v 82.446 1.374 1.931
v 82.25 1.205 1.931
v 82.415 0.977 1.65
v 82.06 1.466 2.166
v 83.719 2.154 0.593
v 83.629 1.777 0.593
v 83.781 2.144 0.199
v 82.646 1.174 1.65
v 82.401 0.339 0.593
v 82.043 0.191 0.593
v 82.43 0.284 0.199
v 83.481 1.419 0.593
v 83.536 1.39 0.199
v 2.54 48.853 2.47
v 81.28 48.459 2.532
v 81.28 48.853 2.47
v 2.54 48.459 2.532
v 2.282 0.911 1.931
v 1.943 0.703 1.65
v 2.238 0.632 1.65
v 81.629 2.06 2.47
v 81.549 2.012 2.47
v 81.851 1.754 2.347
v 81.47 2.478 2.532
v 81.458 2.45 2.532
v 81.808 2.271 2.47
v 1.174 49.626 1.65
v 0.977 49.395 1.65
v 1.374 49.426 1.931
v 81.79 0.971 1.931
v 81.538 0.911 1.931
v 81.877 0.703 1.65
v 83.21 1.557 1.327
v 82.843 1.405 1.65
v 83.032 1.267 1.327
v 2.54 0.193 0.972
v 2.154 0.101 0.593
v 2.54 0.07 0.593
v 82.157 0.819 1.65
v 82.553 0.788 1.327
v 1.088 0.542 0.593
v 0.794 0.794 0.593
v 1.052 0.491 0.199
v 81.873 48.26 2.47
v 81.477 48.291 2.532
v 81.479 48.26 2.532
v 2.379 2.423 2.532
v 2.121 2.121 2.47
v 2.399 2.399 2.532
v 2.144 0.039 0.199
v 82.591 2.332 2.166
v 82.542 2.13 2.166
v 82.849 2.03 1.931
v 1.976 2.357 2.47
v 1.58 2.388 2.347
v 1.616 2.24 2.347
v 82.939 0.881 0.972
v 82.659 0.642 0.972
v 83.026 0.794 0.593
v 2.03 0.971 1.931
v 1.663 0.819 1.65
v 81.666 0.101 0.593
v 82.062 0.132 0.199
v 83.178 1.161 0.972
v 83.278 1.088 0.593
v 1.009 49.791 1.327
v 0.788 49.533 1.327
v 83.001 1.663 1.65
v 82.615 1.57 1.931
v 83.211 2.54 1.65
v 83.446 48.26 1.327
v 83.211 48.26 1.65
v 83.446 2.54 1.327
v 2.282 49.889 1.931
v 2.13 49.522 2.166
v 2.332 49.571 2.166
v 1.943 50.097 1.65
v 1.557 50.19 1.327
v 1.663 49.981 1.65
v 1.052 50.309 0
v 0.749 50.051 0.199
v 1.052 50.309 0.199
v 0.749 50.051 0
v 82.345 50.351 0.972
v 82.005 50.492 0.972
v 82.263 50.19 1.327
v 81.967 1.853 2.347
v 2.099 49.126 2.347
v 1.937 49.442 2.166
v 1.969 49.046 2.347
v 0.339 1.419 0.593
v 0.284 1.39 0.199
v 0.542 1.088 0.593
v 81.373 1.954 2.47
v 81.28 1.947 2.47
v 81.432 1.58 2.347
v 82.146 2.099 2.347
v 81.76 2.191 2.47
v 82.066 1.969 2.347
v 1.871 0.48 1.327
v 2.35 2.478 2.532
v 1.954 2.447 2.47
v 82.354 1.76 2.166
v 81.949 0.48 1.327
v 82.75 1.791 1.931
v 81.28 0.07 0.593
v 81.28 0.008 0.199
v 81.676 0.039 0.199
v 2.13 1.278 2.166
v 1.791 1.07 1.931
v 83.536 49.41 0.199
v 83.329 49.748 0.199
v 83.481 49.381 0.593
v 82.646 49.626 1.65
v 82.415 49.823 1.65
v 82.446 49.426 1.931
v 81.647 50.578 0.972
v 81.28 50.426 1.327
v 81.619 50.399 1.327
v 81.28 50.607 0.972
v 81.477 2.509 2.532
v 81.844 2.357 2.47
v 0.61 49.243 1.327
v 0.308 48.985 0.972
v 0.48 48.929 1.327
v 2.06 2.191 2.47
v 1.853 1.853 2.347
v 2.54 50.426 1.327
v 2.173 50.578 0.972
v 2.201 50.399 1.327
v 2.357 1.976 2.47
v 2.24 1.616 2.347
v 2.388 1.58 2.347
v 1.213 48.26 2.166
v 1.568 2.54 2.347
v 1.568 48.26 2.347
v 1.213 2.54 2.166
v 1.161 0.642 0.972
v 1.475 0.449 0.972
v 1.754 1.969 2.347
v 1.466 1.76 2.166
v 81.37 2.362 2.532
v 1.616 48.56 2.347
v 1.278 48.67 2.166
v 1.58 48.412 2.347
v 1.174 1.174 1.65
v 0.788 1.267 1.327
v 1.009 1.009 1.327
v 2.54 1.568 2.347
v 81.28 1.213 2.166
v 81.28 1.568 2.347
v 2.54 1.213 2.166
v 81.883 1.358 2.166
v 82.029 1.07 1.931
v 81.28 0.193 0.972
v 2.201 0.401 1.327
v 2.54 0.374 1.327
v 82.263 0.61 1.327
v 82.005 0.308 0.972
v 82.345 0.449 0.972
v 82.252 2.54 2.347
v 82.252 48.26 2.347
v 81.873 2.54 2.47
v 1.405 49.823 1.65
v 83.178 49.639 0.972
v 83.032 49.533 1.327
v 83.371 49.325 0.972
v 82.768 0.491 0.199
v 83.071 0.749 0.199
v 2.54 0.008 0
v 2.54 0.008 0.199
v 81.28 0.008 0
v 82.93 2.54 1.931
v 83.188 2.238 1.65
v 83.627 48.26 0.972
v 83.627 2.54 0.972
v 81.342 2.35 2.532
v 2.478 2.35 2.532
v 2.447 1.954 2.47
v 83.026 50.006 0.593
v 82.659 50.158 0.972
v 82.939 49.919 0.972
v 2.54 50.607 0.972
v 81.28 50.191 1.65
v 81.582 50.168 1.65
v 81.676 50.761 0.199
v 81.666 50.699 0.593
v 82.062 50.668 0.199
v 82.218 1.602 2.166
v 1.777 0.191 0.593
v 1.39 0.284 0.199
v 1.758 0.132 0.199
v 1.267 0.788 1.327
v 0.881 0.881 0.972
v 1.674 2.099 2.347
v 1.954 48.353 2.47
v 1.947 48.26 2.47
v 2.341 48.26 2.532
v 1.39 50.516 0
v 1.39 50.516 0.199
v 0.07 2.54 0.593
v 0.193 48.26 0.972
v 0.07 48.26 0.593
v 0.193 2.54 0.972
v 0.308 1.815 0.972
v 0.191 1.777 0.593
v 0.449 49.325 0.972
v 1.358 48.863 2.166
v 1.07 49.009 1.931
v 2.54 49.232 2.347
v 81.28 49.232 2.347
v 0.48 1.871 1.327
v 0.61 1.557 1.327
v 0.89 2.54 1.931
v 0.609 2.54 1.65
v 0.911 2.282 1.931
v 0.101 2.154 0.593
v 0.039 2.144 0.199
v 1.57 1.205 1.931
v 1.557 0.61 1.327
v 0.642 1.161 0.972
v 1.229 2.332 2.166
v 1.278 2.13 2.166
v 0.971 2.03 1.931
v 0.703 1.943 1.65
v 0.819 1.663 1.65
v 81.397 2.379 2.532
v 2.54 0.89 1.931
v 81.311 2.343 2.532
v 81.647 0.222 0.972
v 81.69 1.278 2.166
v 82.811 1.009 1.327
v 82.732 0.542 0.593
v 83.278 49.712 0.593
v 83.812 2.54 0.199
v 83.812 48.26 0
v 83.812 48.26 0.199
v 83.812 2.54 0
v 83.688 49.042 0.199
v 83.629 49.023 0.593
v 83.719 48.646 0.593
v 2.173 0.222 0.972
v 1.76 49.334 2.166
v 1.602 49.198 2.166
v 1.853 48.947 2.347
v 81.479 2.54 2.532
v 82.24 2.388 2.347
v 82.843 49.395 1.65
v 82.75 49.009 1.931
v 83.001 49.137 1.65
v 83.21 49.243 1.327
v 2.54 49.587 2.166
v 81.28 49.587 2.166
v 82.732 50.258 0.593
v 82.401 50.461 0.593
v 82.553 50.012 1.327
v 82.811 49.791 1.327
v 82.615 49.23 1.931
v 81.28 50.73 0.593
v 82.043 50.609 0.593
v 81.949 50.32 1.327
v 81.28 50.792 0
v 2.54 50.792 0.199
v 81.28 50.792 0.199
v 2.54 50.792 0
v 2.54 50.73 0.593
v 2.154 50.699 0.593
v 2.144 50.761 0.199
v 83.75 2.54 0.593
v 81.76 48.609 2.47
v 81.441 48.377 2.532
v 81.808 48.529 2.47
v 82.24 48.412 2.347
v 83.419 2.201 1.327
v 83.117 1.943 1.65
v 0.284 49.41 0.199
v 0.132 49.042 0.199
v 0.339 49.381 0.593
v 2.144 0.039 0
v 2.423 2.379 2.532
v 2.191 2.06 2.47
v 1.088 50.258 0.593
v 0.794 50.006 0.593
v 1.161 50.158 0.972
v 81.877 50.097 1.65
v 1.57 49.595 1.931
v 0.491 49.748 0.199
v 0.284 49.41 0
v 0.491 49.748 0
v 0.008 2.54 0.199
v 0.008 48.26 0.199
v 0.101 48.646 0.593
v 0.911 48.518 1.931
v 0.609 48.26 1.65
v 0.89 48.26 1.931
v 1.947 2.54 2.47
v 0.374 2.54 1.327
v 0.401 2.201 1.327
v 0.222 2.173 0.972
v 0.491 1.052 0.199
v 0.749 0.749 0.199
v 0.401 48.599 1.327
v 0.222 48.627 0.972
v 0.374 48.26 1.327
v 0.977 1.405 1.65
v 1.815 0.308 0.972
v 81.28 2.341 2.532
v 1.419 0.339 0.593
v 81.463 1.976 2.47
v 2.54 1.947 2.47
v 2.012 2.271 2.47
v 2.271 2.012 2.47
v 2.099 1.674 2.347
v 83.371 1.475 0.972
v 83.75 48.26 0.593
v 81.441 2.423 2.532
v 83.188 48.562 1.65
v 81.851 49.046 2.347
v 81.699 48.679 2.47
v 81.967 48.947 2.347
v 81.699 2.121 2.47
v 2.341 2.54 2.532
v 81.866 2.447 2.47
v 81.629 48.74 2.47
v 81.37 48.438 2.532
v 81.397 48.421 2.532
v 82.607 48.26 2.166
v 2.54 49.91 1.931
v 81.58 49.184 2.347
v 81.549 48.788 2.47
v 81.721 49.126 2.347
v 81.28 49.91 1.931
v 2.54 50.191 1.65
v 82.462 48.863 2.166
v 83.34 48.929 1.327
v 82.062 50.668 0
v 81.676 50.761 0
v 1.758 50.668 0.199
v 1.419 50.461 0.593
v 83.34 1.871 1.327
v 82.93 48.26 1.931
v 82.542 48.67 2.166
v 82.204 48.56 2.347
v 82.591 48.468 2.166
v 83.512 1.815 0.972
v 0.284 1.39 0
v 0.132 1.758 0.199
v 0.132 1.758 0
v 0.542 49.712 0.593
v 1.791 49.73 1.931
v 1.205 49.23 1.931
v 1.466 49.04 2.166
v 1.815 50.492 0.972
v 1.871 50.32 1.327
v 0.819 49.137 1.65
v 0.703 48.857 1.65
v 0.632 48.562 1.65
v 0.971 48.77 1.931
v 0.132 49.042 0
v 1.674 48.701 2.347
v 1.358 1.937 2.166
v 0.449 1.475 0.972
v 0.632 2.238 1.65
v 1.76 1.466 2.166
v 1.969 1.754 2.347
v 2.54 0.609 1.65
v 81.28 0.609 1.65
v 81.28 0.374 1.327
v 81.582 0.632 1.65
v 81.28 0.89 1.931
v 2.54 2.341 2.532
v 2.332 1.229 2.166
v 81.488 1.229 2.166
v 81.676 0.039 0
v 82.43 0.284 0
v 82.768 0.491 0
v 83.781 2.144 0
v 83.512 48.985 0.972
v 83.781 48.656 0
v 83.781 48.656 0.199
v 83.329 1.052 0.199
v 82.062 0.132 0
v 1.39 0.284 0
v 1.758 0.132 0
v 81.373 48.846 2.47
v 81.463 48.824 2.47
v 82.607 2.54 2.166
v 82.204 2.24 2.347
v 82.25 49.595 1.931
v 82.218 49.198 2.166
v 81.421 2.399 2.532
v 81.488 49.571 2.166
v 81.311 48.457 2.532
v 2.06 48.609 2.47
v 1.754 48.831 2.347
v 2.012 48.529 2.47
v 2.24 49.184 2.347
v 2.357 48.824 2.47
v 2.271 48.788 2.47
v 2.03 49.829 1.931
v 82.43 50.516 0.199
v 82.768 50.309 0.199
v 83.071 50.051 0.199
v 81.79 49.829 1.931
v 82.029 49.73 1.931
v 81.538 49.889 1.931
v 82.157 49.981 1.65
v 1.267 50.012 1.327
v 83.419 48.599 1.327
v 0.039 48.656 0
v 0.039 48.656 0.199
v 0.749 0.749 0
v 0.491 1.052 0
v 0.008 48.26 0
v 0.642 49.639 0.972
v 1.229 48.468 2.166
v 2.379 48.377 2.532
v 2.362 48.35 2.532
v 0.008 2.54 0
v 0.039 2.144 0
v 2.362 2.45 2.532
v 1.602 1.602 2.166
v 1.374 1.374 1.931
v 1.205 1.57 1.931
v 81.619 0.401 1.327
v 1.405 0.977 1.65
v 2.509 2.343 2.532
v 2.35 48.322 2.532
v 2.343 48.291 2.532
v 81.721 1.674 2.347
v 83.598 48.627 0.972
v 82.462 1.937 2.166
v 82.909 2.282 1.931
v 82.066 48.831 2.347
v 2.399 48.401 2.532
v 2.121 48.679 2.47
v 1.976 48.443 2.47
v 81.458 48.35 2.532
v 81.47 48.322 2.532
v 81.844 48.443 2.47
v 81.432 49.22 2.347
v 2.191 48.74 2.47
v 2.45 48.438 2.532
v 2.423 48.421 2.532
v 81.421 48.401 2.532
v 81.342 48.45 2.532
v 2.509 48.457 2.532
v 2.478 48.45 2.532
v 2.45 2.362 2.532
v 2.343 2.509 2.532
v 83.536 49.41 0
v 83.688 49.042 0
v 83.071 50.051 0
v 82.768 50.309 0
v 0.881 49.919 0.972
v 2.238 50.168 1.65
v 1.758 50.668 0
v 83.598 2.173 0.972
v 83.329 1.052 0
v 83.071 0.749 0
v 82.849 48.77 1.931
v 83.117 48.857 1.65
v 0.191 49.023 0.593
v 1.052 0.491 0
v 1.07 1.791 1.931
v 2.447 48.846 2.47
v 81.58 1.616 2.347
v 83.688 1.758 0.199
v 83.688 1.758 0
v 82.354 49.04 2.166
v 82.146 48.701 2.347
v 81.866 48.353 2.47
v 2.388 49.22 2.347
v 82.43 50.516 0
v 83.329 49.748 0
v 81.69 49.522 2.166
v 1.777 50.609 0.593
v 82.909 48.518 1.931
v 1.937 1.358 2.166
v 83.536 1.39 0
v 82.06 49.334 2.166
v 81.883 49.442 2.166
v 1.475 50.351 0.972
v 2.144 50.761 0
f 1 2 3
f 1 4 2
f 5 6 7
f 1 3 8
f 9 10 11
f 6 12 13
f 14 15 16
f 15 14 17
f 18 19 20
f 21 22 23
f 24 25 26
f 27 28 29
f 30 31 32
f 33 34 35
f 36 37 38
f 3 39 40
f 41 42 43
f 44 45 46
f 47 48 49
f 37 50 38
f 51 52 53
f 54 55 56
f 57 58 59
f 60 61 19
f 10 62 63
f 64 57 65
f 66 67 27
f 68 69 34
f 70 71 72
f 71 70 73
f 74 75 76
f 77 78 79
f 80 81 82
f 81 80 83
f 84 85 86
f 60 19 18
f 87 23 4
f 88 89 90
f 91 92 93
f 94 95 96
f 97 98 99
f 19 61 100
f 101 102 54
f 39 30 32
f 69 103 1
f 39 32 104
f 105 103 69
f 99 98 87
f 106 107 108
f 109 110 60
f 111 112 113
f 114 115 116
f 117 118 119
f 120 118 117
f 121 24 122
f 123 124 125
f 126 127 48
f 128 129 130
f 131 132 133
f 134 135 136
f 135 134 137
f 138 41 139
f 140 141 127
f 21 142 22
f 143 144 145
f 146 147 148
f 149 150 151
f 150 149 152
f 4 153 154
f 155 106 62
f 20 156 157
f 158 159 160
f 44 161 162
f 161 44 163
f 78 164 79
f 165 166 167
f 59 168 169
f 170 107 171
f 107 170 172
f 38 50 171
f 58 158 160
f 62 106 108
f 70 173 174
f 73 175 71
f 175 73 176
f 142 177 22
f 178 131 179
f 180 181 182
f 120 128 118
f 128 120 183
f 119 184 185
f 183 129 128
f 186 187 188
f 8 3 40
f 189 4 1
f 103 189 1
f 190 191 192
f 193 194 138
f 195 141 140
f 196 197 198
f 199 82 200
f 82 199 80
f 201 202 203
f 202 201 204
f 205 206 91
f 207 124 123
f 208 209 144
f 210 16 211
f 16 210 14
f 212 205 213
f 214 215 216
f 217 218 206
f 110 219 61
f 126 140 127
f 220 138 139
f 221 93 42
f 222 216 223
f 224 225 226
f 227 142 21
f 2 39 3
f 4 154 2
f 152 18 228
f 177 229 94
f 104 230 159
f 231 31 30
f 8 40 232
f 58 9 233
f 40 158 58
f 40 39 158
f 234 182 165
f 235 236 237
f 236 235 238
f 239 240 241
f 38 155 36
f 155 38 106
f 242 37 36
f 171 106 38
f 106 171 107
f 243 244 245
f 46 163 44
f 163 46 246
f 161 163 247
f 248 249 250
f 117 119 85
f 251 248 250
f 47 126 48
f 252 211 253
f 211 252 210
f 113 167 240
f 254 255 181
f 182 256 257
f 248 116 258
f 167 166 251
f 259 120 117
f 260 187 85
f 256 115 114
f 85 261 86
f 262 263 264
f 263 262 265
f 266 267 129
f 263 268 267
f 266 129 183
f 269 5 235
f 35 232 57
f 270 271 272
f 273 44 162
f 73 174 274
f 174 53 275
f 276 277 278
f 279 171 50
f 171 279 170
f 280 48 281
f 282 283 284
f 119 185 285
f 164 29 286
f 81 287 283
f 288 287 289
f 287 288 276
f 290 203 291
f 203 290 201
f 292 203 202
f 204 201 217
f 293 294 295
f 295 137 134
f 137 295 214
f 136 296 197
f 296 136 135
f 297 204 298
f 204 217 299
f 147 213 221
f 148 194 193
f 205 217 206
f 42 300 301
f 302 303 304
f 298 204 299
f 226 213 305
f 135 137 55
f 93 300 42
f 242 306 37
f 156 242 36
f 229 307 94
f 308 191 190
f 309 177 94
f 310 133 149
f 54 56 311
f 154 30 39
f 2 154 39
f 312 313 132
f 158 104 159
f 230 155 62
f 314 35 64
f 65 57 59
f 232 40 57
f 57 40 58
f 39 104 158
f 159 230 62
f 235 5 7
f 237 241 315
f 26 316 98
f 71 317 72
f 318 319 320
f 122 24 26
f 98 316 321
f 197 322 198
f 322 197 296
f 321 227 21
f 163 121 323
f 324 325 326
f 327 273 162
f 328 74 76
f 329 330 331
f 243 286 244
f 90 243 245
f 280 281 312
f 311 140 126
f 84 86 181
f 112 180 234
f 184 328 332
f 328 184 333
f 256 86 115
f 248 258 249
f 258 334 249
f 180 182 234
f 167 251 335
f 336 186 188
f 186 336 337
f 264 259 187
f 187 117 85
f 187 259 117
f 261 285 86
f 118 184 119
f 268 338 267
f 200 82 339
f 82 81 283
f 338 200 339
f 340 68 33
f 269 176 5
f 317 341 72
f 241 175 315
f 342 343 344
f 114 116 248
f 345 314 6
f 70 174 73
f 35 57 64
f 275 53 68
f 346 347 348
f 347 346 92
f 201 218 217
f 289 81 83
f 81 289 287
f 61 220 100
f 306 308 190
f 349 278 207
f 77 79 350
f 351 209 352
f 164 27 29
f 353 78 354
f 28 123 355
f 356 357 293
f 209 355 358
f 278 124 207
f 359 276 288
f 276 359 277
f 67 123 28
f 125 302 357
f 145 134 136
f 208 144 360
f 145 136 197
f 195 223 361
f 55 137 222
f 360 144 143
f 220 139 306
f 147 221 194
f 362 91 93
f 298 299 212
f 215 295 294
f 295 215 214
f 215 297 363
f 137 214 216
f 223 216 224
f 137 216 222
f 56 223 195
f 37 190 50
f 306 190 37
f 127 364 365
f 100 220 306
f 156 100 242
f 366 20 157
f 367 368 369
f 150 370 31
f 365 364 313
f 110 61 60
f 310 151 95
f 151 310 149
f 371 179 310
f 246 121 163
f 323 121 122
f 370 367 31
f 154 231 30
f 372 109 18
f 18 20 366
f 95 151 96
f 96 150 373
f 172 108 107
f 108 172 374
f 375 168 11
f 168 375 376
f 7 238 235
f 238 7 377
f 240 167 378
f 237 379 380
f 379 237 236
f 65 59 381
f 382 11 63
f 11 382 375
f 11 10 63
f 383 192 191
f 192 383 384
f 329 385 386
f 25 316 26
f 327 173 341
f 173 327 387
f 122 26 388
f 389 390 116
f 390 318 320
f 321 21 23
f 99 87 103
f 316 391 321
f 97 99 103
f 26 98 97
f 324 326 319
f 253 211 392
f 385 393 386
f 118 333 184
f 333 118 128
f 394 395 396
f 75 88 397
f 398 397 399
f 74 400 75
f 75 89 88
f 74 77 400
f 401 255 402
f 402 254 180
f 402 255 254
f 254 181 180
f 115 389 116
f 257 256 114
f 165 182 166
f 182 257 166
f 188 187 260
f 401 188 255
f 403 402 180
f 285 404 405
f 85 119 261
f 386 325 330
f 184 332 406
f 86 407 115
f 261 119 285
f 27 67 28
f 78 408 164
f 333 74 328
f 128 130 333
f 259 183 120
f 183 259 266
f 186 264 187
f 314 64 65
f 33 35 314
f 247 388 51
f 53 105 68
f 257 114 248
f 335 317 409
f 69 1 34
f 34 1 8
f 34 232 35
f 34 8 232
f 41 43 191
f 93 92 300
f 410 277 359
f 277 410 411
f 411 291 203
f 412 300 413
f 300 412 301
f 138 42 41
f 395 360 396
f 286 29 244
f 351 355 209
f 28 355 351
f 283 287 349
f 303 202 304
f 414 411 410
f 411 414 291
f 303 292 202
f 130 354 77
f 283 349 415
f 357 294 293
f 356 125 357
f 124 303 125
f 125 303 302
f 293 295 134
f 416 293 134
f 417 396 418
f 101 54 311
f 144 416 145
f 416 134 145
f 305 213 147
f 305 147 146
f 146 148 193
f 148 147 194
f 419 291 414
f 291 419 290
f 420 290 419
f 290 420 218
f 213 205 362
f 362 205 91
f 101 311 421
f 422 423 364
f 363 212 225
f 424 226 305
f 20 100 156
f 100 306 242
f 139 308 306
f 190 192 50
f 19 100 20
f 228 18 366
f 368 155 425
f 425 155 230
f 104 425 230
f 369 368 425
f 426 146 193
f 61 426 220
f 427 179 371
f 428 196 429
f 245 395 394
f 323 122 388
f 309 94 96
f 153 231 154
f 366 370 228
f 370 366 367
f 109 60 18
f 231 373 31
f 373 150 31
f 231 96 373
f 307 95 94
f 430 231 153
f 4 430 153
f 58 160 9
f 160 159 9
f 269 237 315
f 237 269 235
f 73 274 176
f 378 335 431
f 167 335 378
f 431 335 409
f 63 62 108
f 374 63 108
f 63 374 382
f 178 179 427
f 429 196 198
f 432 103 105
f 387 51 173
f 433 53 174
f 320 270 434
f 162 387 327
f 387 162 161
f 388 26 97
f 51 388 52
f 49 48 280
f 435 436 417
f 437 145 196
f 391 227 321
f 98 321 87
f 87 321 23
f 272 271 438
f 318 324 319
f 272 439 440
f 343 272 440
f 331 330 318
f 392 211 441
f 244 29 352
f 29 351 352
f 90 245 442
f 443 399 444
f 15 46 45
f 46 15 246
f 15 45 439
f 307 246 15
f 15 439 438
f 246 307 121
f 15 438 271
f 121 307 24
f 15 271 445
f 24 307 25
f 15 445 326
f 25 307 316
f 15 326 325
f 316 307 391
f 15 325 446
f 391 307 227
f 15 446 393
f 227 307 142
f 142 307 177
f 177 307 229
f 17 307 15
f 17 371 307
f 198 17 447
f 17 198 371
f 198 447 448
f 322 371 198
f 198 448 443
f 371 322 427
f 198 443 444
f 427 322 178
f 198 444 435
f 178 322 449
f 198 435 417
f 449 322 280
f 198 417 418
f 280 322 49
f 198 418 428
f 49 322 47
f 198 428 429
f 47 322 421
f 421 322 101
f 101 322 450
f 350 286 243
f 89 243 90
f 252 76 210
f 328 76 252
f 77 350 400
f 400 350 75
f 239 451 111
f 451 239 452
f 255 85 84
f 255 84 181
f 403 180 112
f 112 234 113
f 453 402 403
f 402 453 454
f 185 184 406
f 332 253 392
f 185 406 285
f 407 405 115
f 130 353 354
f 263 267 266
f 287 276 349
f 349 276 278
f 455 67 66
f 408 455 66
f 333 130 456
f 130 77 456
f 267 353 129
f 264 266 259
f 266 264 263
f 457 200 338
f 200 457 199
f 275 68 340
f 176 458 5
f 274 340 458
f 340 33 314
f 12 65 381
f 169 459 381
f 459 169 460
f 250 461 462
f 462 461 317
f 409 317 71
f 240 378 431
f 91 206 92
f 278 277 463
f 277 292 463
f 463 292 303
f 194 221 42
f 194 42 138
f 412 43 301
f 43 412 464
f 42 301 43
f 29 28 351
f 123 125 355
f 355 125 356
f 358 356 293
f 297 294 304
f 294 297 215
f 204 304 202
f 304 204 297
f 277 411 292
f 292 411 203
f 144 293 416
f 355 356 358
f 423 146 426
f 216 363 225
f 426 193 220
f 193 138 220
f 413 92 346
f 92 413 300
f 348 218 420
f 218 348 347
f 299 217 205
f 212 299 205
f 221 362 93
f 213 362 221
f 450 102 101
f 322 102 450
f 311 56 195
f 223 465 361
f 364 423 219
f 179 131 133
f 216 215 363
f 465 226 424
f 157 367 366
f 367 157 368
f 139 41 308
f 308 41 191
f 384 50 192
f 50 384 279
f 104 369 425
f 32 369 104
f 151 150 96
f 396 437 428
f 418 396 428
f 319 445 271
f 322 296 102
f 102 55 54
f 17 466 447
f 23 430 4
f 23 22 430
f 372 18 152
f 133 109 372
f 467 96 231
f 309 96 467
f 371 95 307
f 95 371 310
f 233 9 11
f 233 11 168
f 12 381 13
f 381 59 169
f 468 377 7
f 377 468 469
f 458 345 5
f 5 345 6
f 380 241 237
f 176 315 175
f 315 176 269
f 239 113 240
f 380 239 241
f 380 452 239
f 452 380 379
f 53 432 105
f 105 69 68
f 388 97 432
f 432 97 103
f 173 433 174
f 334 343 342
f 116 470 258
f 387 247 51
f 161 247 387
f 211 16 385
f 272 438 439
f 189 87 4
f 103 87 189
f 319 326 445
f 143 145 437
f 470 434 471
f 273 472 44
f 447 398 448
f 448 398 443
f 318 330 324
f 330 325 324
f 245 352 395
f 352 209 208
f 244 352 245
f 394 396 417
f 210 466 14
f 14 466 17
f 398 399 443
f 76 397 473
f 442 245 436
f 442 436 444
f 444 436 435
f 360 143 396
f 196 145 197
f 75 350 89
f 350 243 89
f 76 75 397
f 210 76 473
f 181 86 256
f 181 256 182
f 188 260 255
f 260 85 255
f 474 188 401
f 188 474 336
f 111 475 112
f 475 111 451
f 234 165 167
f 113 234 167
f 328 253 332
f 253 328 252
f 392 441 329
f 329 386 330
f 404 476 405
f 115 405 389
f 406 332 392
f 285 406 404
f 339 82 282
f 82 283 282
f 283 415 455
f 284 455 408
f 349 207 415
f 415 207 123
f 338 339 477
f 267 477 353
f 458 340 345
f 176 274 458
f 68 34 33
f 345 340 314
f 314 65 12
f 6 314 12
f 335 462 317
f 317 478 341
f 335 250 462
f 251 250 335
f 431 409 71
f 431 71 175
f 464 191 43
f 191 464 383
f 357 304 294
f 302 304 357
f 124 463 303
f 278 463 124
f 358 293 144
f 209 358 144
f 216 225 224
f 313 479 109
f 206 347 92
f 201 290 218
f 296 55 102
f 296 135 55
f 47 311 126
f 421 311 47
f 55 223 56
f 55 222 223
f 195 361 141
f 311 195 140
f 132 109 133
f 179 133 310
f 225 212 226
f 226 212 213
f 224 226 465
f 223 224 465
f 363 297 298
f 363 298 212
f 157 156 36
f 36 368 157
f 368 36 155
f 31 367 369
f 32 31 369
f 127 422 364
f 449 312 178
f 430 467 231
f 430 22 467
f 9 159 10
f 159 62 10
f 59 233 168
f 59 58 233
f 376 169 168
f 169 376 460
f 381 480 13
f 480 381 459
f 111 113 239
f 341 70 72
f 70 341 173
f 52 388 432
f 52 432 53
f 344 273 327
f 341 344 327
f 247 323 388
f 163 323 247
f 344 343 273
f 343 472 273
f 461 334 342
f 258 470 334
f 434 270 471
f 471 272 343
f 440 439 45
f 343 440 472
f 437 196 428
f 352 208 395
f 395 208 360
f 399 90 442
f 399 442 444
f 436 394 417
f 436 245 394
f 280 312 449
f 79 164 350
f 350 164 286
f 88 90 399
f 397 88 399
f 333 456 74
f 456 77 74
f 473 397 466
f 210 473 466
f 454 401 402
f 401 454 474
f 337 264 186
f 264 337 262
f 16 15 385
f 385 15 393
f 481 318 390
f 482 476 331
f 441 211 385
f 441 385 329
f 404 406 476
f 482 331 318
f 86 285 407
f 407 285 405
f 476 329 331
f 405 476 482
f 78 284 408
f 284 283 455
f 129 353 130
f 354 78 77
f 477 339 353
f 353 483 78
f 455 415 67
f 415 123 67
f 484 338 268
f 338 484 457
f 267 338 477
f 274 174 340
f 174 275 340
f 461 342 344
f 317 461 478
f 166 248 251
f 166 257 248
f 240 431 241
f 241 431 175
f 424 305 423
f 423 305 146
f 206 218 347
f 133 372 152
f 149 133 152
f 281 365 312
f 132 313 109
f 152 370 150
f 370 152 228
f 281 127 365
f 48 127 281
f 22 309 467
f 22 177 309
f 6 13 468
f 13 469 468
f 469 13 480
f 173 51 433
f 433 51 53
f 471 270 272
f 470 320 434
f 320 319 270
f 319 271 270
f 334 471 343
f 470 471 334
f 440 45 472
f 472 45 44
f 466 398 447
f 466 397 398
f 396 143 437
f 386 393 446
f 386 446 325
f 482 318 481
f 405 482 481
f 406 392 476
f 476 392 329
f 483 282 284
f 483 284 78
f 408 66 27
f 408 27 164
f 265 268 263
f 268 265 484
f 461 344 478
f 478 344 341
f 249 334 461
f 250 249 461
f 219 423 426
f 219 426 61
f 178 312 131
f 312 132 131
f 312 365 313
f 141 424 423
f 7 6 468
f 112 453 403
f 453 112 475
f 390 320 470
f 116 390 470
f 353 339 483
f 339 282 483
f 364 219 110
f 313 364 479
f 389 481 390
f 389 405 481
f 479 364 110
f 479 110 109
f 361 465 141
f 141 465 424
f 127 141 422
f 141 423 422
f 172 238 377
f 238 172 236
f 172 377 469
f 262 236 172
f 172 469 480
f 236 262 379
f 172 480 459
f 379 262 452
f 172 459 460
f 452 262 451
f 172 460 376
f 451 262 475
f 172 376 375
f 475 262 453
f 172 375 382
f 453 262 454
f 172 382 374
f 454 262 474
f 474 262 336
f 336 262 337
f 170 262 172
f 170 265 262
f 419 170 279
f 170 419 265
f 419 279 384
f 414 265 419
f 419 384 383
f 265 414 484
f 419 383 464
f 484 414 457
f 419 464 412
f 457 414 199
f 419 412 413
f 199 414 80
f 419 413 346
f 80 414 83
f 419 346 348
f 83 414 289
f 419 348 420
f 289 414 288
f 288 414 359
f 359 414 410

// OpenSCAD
// file: base.scad
include <smooth_prim.scad>

function mm(mil) = mil * 0.0254;
x = mm(3300);
y = mm(2000);
r = mm(100);
large_num = 200;

module case(){
    translate([0, 0, -r])
    difference (){
        SmoothCube([x, y, 2* r], r);
        translate([0, 0, r - large_num])
        cube(size=[x, y, large_num]);
    }
}

case();
// main file
include <base.scad>
include <smooth_prim.scad>

smooth_r = 0.7 * r;
thickness = 1;


// scale([1, 1, thickness / r])
// SmoothHole(
//     radius = mm(552.27),
//     height = 2 * r,
//     smooth_rad = smooth_r,
//     position = [mm(700), mm(1300), -r]
// )
// SmoothHole(
//     radius = mm(552.27),
//     height = 2 * r,
//     smooth_rad = smooth_r,
//     position = [mm(2600), mm(1300), -r]
// )
// SmoothHole(
//     radius = mm(250),
//     height = 2 * r,
//     smooth_rad = smooth_r,
//     position = [mm(900), mm(350), -r]
// )
SmoothHole(
    radius = mm(250),
    height = 2 * r,
    smooth_rad = smooth_r,
    position = [mm(2400), mm(350), -r]
)
case();
